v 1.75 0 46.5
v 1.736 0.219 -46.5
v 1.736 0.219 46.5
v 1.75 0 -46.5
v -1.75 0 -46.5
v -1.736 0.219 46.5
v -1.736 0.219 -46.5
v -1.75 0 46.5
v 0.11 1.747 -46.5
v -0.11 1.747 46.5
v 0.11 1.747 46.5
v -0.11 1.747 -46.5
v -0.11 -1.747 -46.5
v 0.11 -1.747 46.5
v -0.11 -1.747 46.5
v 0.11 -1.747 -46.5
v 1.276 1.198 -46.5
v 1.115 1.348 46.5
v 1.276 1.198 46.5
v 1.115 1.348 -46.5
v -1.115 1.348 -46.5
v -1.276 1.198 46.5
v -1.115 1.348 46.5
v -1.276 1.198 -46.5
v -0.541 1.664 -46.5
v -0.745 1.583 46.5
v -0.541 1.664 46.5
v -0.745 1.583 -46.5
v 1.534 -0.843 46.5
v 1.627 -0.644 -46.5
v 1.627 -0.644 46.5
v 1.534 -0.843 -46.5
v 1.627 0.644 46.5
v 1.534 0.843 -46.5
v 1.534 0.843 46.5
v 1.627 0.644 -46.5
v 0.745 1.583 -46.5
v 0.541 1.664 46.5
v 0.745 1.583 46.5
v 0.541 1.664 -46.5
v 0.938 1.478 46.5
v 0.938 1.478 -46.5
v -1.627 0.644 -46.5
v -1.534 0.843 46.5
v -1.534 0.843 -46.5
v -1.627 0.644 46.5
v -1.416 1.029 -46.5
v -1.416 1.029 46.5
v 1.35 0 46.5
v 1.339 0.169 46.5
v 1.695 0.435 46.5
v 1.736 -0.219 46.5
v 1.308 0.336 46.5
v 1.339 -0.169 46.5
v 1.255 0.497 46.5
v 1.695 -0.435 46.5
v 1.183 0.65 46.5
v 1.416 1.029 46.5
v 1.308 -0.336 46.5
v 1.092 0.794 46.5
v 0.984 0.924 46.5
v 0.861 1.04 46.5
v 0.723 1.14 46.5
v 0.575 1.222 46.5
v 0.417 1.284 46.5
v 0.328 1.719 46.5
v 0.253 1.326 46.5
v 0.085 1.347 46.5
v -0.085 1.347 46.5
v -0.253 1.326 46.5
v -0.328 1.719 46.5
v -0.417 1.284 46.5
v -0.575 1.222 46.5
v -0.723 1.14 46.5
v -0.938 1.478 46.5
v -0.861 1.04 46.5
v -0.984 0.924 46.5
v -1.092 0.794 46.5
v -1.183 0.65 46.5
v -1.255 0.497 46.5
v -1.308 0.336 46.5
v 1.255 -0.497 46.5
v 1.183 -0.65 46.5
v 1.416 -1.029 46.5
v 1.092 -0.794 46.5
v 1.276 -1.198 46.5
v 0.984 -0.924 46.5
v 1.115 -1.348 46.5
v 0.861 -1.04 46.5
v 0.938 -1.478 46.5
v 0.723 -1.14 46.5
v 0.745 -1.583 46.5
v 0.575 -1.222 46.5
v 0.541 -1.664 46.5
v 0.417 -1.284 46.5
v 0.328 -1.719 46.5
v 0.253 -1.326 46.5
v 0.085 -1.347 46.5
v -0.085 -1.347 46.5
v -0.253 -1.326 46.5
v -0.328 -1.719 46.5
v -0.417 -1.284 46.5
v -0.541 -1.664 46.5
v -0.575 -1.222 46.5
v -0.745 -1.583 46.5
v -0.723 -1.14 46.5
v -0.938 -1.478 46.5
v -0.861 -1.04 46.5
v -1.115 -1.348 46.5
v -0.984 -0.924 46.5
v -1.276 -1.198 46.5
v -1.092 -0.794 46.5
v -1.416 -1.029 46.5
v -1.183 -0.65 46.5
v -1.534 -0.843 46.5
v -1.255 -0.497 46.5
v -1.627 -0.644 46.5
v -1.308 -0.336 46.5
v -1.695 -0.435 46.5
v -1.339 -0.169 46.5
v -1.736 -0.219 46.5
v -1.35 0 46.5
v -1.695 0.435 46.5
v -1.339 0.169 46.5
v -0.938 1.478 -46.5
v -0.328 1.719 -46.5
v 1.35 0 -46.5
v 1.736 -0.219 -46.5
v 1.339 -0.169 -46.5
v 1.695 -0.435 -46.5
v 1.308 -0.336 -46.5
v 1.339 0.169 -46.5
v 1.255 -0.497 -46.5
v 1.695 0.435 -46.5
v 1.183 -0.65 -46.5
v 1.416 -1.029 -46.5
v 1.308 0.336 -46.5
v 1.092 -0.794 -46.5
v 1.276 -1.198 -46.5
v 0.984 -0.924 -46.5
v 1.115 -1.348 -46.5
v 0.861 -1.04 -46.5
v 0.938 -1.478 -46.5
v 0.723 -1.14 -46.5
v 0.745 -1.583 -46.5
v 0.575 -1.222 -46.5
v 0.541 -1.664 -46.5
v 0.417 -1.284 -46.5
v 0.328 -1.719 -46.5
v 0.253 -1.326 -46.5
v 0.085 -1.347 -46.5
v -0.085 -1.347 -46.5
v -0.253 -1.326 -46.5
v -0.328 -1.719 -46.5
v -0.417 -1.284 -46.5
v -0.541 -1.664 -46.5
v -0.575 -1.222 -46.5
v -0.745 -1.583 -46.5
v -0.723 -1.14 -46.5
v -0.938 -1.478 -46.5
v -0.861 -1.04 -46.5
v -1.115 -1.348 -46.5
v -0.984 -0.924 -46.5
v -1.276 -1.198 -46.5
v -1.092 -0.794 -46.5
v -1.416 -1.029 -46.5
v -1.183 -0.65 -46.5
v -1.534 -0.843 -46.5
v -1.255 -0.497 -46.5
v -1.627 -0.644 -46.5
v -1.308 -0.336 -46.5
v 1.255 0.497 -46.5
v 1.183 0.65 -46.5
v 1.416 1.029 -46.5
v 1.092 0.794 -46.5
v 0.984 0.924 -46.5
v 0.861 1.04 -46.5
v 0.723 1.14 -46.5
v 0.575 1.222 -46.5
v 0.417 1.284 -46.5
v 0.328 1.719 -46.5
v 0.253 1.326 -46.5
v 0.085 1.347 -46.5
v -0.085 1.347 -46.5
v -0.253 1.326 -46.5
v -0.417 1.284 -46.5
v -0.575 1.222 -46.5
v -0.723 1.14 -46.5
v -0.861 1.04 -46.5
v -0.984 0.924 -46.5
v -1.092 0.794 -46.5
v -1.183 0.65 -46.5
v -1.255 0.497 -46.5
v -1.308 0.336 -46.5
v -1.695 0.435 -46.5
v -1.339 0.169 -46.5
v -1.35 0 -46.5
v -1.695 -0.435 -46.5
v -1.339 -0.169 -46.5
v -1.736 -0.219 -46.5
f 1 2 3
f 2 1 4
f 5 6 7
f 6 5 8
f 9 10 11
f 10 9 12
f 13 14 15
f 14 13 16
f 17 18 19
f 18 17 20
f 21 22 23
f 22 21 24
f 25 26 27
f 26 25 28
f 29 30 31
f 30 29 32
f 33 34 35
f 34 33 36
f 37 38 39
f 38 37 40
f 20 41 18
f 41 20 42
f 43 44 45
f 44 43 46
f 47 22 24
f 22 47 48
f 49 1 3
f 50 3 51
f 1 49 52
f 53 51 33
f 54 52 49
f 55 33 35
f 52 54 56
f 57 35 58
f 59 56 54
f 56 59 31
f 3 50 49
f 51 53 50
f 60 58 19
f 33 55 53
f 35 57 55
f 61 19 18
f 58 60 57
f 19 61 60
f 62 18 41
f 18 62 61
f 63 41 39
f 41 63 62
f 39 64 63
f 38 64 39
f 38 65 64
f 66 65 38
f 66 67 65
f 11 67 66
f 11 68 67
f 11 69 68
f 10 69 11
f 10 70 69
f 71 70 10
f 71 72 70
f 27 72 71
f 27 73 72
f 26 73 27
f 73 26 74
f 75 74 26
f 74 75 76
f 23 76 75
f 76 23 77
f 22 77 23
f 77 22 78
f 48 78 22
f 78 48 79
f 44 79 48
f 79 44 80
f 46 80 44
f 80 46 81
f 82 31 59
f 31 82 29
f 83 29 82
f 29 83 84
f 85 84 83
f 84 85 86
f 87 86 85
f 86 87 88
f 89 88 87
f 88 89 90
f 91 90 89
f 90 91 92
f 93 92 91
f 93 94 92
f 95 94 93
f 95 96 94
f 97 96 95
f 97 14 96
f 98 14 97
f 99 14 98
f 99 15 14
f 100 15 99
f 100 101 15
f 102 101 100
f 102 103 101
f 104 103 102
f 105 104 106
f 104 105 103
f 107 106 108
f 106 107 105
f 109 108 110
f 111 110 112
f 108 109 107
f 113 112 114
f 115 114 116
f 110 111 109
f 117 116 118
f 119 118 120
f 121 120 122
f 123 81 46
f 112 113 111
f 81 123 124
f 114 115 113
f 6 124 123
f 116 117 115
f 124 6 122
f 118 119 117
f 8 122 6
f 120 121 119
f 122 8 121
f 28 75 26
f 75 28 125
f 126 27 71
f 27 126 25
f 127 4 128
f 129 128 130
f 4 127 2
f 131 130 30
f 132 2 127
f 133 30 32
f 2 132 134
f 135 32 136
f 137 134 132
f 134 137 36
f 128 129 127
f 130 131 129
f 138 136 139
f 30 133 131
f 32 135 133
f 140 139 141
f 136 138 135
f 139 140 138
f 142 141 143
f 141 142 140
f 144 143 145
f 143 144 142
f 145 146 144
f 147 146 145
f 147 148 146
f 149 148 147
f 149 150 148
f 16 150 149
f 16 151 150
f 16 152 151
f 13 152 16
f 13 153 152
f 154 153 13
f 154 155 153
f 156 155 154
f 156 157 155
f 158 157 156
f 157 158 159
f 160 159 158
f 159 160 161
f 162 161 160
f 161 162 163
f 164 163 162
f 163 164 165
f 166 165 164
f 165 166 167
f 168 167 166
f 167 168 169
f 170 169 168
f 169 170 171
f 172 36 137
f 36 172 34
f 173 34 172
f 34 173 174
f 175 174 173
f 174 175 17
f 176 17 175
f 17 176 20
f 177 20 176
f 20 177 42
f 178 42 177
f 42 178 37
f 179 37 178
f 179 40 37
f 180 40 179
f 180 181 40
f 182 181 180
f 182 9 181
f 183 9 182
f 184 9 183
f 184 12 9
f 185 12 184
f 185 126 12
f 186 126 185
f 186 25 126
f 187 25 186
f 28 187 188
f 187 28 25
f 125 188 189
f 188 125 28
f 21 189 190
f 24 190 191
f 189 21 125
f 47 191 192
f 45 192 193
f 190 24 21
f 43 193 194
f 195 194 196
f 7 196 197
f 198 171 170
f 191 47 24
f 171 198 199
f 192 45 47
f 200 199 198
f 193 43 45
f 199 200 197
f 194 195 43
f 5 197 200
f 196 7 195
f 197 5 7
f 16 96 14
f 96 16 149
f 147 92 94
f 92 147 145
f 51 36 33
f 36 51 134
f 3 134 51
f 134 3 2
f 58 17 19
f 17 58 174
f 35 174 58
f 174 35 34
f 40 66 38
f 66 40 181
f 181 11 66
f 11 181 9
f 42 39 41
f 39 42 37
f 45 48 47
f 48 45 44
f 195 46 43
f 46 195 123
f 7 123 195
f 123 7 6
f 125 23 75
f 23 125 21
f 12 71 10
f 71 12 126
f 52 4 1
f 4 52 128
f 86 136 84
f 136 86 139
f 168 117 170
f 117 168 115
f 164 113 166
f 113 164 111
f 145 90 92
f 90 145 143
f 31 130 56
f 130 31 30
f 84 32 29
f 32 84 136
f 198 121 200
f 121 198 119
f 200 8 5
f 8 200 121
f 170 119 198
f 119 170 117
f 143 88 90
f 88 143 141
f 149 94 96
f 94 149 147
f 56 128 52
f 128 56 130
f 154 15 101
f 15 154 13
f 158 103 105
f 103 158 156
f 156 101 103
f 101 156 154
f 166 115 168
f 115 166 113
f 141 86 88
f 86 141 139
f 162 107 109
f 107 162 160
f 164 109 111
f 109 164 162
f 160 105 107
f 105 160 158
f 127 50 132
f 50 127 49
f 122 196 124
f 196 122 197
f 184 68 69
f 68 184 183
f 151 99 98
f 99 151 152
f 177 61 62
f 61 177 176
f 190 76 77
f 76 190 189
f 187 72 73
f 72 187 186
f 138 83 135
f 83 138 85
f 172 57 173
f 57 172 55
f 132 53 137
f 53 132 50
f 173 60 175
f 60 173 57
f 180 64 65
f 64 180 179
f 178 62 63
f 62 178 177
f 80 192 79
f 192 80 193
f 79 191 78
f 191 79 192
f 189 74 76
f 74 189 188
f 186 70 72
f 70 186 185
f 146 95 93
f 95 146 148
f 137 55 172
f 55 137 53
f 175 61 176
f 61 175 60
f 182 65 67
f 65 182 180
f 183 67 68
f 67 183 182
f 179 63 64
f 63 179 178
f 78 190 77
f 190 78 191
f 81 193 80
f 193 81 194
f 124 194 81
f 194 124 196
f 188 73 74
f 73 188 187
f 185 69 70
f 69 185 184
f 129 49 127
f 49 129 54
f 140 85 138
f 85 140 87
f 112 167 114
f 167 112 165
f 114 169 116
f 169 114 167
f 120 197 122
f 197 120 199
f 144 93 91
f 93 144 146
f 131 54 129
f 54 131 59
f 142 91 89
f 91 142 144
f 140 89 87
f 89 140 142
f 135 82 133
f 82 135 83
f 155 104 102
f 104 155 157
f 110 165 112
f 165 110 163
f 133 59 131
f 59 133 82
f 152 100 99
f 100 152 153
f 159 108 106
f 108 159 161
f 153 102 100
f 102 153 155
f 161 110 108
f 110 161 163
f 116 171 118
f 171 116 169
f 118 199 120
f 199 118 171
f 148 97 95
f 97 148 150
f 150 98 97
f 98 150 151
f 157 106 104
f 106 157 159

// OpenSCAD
$fn = 50;


difference() {
	union() {
		translate(v = [0, 0, -46.5000000000]) {
			cylinder(h = 93, r = 1.7500000000);
		}
	}
	union() {
		translate(v = [0, 0, -100.0000000000]) {
			cylinder(h = 200, r = 1.3500000000);
		}
	}
}
